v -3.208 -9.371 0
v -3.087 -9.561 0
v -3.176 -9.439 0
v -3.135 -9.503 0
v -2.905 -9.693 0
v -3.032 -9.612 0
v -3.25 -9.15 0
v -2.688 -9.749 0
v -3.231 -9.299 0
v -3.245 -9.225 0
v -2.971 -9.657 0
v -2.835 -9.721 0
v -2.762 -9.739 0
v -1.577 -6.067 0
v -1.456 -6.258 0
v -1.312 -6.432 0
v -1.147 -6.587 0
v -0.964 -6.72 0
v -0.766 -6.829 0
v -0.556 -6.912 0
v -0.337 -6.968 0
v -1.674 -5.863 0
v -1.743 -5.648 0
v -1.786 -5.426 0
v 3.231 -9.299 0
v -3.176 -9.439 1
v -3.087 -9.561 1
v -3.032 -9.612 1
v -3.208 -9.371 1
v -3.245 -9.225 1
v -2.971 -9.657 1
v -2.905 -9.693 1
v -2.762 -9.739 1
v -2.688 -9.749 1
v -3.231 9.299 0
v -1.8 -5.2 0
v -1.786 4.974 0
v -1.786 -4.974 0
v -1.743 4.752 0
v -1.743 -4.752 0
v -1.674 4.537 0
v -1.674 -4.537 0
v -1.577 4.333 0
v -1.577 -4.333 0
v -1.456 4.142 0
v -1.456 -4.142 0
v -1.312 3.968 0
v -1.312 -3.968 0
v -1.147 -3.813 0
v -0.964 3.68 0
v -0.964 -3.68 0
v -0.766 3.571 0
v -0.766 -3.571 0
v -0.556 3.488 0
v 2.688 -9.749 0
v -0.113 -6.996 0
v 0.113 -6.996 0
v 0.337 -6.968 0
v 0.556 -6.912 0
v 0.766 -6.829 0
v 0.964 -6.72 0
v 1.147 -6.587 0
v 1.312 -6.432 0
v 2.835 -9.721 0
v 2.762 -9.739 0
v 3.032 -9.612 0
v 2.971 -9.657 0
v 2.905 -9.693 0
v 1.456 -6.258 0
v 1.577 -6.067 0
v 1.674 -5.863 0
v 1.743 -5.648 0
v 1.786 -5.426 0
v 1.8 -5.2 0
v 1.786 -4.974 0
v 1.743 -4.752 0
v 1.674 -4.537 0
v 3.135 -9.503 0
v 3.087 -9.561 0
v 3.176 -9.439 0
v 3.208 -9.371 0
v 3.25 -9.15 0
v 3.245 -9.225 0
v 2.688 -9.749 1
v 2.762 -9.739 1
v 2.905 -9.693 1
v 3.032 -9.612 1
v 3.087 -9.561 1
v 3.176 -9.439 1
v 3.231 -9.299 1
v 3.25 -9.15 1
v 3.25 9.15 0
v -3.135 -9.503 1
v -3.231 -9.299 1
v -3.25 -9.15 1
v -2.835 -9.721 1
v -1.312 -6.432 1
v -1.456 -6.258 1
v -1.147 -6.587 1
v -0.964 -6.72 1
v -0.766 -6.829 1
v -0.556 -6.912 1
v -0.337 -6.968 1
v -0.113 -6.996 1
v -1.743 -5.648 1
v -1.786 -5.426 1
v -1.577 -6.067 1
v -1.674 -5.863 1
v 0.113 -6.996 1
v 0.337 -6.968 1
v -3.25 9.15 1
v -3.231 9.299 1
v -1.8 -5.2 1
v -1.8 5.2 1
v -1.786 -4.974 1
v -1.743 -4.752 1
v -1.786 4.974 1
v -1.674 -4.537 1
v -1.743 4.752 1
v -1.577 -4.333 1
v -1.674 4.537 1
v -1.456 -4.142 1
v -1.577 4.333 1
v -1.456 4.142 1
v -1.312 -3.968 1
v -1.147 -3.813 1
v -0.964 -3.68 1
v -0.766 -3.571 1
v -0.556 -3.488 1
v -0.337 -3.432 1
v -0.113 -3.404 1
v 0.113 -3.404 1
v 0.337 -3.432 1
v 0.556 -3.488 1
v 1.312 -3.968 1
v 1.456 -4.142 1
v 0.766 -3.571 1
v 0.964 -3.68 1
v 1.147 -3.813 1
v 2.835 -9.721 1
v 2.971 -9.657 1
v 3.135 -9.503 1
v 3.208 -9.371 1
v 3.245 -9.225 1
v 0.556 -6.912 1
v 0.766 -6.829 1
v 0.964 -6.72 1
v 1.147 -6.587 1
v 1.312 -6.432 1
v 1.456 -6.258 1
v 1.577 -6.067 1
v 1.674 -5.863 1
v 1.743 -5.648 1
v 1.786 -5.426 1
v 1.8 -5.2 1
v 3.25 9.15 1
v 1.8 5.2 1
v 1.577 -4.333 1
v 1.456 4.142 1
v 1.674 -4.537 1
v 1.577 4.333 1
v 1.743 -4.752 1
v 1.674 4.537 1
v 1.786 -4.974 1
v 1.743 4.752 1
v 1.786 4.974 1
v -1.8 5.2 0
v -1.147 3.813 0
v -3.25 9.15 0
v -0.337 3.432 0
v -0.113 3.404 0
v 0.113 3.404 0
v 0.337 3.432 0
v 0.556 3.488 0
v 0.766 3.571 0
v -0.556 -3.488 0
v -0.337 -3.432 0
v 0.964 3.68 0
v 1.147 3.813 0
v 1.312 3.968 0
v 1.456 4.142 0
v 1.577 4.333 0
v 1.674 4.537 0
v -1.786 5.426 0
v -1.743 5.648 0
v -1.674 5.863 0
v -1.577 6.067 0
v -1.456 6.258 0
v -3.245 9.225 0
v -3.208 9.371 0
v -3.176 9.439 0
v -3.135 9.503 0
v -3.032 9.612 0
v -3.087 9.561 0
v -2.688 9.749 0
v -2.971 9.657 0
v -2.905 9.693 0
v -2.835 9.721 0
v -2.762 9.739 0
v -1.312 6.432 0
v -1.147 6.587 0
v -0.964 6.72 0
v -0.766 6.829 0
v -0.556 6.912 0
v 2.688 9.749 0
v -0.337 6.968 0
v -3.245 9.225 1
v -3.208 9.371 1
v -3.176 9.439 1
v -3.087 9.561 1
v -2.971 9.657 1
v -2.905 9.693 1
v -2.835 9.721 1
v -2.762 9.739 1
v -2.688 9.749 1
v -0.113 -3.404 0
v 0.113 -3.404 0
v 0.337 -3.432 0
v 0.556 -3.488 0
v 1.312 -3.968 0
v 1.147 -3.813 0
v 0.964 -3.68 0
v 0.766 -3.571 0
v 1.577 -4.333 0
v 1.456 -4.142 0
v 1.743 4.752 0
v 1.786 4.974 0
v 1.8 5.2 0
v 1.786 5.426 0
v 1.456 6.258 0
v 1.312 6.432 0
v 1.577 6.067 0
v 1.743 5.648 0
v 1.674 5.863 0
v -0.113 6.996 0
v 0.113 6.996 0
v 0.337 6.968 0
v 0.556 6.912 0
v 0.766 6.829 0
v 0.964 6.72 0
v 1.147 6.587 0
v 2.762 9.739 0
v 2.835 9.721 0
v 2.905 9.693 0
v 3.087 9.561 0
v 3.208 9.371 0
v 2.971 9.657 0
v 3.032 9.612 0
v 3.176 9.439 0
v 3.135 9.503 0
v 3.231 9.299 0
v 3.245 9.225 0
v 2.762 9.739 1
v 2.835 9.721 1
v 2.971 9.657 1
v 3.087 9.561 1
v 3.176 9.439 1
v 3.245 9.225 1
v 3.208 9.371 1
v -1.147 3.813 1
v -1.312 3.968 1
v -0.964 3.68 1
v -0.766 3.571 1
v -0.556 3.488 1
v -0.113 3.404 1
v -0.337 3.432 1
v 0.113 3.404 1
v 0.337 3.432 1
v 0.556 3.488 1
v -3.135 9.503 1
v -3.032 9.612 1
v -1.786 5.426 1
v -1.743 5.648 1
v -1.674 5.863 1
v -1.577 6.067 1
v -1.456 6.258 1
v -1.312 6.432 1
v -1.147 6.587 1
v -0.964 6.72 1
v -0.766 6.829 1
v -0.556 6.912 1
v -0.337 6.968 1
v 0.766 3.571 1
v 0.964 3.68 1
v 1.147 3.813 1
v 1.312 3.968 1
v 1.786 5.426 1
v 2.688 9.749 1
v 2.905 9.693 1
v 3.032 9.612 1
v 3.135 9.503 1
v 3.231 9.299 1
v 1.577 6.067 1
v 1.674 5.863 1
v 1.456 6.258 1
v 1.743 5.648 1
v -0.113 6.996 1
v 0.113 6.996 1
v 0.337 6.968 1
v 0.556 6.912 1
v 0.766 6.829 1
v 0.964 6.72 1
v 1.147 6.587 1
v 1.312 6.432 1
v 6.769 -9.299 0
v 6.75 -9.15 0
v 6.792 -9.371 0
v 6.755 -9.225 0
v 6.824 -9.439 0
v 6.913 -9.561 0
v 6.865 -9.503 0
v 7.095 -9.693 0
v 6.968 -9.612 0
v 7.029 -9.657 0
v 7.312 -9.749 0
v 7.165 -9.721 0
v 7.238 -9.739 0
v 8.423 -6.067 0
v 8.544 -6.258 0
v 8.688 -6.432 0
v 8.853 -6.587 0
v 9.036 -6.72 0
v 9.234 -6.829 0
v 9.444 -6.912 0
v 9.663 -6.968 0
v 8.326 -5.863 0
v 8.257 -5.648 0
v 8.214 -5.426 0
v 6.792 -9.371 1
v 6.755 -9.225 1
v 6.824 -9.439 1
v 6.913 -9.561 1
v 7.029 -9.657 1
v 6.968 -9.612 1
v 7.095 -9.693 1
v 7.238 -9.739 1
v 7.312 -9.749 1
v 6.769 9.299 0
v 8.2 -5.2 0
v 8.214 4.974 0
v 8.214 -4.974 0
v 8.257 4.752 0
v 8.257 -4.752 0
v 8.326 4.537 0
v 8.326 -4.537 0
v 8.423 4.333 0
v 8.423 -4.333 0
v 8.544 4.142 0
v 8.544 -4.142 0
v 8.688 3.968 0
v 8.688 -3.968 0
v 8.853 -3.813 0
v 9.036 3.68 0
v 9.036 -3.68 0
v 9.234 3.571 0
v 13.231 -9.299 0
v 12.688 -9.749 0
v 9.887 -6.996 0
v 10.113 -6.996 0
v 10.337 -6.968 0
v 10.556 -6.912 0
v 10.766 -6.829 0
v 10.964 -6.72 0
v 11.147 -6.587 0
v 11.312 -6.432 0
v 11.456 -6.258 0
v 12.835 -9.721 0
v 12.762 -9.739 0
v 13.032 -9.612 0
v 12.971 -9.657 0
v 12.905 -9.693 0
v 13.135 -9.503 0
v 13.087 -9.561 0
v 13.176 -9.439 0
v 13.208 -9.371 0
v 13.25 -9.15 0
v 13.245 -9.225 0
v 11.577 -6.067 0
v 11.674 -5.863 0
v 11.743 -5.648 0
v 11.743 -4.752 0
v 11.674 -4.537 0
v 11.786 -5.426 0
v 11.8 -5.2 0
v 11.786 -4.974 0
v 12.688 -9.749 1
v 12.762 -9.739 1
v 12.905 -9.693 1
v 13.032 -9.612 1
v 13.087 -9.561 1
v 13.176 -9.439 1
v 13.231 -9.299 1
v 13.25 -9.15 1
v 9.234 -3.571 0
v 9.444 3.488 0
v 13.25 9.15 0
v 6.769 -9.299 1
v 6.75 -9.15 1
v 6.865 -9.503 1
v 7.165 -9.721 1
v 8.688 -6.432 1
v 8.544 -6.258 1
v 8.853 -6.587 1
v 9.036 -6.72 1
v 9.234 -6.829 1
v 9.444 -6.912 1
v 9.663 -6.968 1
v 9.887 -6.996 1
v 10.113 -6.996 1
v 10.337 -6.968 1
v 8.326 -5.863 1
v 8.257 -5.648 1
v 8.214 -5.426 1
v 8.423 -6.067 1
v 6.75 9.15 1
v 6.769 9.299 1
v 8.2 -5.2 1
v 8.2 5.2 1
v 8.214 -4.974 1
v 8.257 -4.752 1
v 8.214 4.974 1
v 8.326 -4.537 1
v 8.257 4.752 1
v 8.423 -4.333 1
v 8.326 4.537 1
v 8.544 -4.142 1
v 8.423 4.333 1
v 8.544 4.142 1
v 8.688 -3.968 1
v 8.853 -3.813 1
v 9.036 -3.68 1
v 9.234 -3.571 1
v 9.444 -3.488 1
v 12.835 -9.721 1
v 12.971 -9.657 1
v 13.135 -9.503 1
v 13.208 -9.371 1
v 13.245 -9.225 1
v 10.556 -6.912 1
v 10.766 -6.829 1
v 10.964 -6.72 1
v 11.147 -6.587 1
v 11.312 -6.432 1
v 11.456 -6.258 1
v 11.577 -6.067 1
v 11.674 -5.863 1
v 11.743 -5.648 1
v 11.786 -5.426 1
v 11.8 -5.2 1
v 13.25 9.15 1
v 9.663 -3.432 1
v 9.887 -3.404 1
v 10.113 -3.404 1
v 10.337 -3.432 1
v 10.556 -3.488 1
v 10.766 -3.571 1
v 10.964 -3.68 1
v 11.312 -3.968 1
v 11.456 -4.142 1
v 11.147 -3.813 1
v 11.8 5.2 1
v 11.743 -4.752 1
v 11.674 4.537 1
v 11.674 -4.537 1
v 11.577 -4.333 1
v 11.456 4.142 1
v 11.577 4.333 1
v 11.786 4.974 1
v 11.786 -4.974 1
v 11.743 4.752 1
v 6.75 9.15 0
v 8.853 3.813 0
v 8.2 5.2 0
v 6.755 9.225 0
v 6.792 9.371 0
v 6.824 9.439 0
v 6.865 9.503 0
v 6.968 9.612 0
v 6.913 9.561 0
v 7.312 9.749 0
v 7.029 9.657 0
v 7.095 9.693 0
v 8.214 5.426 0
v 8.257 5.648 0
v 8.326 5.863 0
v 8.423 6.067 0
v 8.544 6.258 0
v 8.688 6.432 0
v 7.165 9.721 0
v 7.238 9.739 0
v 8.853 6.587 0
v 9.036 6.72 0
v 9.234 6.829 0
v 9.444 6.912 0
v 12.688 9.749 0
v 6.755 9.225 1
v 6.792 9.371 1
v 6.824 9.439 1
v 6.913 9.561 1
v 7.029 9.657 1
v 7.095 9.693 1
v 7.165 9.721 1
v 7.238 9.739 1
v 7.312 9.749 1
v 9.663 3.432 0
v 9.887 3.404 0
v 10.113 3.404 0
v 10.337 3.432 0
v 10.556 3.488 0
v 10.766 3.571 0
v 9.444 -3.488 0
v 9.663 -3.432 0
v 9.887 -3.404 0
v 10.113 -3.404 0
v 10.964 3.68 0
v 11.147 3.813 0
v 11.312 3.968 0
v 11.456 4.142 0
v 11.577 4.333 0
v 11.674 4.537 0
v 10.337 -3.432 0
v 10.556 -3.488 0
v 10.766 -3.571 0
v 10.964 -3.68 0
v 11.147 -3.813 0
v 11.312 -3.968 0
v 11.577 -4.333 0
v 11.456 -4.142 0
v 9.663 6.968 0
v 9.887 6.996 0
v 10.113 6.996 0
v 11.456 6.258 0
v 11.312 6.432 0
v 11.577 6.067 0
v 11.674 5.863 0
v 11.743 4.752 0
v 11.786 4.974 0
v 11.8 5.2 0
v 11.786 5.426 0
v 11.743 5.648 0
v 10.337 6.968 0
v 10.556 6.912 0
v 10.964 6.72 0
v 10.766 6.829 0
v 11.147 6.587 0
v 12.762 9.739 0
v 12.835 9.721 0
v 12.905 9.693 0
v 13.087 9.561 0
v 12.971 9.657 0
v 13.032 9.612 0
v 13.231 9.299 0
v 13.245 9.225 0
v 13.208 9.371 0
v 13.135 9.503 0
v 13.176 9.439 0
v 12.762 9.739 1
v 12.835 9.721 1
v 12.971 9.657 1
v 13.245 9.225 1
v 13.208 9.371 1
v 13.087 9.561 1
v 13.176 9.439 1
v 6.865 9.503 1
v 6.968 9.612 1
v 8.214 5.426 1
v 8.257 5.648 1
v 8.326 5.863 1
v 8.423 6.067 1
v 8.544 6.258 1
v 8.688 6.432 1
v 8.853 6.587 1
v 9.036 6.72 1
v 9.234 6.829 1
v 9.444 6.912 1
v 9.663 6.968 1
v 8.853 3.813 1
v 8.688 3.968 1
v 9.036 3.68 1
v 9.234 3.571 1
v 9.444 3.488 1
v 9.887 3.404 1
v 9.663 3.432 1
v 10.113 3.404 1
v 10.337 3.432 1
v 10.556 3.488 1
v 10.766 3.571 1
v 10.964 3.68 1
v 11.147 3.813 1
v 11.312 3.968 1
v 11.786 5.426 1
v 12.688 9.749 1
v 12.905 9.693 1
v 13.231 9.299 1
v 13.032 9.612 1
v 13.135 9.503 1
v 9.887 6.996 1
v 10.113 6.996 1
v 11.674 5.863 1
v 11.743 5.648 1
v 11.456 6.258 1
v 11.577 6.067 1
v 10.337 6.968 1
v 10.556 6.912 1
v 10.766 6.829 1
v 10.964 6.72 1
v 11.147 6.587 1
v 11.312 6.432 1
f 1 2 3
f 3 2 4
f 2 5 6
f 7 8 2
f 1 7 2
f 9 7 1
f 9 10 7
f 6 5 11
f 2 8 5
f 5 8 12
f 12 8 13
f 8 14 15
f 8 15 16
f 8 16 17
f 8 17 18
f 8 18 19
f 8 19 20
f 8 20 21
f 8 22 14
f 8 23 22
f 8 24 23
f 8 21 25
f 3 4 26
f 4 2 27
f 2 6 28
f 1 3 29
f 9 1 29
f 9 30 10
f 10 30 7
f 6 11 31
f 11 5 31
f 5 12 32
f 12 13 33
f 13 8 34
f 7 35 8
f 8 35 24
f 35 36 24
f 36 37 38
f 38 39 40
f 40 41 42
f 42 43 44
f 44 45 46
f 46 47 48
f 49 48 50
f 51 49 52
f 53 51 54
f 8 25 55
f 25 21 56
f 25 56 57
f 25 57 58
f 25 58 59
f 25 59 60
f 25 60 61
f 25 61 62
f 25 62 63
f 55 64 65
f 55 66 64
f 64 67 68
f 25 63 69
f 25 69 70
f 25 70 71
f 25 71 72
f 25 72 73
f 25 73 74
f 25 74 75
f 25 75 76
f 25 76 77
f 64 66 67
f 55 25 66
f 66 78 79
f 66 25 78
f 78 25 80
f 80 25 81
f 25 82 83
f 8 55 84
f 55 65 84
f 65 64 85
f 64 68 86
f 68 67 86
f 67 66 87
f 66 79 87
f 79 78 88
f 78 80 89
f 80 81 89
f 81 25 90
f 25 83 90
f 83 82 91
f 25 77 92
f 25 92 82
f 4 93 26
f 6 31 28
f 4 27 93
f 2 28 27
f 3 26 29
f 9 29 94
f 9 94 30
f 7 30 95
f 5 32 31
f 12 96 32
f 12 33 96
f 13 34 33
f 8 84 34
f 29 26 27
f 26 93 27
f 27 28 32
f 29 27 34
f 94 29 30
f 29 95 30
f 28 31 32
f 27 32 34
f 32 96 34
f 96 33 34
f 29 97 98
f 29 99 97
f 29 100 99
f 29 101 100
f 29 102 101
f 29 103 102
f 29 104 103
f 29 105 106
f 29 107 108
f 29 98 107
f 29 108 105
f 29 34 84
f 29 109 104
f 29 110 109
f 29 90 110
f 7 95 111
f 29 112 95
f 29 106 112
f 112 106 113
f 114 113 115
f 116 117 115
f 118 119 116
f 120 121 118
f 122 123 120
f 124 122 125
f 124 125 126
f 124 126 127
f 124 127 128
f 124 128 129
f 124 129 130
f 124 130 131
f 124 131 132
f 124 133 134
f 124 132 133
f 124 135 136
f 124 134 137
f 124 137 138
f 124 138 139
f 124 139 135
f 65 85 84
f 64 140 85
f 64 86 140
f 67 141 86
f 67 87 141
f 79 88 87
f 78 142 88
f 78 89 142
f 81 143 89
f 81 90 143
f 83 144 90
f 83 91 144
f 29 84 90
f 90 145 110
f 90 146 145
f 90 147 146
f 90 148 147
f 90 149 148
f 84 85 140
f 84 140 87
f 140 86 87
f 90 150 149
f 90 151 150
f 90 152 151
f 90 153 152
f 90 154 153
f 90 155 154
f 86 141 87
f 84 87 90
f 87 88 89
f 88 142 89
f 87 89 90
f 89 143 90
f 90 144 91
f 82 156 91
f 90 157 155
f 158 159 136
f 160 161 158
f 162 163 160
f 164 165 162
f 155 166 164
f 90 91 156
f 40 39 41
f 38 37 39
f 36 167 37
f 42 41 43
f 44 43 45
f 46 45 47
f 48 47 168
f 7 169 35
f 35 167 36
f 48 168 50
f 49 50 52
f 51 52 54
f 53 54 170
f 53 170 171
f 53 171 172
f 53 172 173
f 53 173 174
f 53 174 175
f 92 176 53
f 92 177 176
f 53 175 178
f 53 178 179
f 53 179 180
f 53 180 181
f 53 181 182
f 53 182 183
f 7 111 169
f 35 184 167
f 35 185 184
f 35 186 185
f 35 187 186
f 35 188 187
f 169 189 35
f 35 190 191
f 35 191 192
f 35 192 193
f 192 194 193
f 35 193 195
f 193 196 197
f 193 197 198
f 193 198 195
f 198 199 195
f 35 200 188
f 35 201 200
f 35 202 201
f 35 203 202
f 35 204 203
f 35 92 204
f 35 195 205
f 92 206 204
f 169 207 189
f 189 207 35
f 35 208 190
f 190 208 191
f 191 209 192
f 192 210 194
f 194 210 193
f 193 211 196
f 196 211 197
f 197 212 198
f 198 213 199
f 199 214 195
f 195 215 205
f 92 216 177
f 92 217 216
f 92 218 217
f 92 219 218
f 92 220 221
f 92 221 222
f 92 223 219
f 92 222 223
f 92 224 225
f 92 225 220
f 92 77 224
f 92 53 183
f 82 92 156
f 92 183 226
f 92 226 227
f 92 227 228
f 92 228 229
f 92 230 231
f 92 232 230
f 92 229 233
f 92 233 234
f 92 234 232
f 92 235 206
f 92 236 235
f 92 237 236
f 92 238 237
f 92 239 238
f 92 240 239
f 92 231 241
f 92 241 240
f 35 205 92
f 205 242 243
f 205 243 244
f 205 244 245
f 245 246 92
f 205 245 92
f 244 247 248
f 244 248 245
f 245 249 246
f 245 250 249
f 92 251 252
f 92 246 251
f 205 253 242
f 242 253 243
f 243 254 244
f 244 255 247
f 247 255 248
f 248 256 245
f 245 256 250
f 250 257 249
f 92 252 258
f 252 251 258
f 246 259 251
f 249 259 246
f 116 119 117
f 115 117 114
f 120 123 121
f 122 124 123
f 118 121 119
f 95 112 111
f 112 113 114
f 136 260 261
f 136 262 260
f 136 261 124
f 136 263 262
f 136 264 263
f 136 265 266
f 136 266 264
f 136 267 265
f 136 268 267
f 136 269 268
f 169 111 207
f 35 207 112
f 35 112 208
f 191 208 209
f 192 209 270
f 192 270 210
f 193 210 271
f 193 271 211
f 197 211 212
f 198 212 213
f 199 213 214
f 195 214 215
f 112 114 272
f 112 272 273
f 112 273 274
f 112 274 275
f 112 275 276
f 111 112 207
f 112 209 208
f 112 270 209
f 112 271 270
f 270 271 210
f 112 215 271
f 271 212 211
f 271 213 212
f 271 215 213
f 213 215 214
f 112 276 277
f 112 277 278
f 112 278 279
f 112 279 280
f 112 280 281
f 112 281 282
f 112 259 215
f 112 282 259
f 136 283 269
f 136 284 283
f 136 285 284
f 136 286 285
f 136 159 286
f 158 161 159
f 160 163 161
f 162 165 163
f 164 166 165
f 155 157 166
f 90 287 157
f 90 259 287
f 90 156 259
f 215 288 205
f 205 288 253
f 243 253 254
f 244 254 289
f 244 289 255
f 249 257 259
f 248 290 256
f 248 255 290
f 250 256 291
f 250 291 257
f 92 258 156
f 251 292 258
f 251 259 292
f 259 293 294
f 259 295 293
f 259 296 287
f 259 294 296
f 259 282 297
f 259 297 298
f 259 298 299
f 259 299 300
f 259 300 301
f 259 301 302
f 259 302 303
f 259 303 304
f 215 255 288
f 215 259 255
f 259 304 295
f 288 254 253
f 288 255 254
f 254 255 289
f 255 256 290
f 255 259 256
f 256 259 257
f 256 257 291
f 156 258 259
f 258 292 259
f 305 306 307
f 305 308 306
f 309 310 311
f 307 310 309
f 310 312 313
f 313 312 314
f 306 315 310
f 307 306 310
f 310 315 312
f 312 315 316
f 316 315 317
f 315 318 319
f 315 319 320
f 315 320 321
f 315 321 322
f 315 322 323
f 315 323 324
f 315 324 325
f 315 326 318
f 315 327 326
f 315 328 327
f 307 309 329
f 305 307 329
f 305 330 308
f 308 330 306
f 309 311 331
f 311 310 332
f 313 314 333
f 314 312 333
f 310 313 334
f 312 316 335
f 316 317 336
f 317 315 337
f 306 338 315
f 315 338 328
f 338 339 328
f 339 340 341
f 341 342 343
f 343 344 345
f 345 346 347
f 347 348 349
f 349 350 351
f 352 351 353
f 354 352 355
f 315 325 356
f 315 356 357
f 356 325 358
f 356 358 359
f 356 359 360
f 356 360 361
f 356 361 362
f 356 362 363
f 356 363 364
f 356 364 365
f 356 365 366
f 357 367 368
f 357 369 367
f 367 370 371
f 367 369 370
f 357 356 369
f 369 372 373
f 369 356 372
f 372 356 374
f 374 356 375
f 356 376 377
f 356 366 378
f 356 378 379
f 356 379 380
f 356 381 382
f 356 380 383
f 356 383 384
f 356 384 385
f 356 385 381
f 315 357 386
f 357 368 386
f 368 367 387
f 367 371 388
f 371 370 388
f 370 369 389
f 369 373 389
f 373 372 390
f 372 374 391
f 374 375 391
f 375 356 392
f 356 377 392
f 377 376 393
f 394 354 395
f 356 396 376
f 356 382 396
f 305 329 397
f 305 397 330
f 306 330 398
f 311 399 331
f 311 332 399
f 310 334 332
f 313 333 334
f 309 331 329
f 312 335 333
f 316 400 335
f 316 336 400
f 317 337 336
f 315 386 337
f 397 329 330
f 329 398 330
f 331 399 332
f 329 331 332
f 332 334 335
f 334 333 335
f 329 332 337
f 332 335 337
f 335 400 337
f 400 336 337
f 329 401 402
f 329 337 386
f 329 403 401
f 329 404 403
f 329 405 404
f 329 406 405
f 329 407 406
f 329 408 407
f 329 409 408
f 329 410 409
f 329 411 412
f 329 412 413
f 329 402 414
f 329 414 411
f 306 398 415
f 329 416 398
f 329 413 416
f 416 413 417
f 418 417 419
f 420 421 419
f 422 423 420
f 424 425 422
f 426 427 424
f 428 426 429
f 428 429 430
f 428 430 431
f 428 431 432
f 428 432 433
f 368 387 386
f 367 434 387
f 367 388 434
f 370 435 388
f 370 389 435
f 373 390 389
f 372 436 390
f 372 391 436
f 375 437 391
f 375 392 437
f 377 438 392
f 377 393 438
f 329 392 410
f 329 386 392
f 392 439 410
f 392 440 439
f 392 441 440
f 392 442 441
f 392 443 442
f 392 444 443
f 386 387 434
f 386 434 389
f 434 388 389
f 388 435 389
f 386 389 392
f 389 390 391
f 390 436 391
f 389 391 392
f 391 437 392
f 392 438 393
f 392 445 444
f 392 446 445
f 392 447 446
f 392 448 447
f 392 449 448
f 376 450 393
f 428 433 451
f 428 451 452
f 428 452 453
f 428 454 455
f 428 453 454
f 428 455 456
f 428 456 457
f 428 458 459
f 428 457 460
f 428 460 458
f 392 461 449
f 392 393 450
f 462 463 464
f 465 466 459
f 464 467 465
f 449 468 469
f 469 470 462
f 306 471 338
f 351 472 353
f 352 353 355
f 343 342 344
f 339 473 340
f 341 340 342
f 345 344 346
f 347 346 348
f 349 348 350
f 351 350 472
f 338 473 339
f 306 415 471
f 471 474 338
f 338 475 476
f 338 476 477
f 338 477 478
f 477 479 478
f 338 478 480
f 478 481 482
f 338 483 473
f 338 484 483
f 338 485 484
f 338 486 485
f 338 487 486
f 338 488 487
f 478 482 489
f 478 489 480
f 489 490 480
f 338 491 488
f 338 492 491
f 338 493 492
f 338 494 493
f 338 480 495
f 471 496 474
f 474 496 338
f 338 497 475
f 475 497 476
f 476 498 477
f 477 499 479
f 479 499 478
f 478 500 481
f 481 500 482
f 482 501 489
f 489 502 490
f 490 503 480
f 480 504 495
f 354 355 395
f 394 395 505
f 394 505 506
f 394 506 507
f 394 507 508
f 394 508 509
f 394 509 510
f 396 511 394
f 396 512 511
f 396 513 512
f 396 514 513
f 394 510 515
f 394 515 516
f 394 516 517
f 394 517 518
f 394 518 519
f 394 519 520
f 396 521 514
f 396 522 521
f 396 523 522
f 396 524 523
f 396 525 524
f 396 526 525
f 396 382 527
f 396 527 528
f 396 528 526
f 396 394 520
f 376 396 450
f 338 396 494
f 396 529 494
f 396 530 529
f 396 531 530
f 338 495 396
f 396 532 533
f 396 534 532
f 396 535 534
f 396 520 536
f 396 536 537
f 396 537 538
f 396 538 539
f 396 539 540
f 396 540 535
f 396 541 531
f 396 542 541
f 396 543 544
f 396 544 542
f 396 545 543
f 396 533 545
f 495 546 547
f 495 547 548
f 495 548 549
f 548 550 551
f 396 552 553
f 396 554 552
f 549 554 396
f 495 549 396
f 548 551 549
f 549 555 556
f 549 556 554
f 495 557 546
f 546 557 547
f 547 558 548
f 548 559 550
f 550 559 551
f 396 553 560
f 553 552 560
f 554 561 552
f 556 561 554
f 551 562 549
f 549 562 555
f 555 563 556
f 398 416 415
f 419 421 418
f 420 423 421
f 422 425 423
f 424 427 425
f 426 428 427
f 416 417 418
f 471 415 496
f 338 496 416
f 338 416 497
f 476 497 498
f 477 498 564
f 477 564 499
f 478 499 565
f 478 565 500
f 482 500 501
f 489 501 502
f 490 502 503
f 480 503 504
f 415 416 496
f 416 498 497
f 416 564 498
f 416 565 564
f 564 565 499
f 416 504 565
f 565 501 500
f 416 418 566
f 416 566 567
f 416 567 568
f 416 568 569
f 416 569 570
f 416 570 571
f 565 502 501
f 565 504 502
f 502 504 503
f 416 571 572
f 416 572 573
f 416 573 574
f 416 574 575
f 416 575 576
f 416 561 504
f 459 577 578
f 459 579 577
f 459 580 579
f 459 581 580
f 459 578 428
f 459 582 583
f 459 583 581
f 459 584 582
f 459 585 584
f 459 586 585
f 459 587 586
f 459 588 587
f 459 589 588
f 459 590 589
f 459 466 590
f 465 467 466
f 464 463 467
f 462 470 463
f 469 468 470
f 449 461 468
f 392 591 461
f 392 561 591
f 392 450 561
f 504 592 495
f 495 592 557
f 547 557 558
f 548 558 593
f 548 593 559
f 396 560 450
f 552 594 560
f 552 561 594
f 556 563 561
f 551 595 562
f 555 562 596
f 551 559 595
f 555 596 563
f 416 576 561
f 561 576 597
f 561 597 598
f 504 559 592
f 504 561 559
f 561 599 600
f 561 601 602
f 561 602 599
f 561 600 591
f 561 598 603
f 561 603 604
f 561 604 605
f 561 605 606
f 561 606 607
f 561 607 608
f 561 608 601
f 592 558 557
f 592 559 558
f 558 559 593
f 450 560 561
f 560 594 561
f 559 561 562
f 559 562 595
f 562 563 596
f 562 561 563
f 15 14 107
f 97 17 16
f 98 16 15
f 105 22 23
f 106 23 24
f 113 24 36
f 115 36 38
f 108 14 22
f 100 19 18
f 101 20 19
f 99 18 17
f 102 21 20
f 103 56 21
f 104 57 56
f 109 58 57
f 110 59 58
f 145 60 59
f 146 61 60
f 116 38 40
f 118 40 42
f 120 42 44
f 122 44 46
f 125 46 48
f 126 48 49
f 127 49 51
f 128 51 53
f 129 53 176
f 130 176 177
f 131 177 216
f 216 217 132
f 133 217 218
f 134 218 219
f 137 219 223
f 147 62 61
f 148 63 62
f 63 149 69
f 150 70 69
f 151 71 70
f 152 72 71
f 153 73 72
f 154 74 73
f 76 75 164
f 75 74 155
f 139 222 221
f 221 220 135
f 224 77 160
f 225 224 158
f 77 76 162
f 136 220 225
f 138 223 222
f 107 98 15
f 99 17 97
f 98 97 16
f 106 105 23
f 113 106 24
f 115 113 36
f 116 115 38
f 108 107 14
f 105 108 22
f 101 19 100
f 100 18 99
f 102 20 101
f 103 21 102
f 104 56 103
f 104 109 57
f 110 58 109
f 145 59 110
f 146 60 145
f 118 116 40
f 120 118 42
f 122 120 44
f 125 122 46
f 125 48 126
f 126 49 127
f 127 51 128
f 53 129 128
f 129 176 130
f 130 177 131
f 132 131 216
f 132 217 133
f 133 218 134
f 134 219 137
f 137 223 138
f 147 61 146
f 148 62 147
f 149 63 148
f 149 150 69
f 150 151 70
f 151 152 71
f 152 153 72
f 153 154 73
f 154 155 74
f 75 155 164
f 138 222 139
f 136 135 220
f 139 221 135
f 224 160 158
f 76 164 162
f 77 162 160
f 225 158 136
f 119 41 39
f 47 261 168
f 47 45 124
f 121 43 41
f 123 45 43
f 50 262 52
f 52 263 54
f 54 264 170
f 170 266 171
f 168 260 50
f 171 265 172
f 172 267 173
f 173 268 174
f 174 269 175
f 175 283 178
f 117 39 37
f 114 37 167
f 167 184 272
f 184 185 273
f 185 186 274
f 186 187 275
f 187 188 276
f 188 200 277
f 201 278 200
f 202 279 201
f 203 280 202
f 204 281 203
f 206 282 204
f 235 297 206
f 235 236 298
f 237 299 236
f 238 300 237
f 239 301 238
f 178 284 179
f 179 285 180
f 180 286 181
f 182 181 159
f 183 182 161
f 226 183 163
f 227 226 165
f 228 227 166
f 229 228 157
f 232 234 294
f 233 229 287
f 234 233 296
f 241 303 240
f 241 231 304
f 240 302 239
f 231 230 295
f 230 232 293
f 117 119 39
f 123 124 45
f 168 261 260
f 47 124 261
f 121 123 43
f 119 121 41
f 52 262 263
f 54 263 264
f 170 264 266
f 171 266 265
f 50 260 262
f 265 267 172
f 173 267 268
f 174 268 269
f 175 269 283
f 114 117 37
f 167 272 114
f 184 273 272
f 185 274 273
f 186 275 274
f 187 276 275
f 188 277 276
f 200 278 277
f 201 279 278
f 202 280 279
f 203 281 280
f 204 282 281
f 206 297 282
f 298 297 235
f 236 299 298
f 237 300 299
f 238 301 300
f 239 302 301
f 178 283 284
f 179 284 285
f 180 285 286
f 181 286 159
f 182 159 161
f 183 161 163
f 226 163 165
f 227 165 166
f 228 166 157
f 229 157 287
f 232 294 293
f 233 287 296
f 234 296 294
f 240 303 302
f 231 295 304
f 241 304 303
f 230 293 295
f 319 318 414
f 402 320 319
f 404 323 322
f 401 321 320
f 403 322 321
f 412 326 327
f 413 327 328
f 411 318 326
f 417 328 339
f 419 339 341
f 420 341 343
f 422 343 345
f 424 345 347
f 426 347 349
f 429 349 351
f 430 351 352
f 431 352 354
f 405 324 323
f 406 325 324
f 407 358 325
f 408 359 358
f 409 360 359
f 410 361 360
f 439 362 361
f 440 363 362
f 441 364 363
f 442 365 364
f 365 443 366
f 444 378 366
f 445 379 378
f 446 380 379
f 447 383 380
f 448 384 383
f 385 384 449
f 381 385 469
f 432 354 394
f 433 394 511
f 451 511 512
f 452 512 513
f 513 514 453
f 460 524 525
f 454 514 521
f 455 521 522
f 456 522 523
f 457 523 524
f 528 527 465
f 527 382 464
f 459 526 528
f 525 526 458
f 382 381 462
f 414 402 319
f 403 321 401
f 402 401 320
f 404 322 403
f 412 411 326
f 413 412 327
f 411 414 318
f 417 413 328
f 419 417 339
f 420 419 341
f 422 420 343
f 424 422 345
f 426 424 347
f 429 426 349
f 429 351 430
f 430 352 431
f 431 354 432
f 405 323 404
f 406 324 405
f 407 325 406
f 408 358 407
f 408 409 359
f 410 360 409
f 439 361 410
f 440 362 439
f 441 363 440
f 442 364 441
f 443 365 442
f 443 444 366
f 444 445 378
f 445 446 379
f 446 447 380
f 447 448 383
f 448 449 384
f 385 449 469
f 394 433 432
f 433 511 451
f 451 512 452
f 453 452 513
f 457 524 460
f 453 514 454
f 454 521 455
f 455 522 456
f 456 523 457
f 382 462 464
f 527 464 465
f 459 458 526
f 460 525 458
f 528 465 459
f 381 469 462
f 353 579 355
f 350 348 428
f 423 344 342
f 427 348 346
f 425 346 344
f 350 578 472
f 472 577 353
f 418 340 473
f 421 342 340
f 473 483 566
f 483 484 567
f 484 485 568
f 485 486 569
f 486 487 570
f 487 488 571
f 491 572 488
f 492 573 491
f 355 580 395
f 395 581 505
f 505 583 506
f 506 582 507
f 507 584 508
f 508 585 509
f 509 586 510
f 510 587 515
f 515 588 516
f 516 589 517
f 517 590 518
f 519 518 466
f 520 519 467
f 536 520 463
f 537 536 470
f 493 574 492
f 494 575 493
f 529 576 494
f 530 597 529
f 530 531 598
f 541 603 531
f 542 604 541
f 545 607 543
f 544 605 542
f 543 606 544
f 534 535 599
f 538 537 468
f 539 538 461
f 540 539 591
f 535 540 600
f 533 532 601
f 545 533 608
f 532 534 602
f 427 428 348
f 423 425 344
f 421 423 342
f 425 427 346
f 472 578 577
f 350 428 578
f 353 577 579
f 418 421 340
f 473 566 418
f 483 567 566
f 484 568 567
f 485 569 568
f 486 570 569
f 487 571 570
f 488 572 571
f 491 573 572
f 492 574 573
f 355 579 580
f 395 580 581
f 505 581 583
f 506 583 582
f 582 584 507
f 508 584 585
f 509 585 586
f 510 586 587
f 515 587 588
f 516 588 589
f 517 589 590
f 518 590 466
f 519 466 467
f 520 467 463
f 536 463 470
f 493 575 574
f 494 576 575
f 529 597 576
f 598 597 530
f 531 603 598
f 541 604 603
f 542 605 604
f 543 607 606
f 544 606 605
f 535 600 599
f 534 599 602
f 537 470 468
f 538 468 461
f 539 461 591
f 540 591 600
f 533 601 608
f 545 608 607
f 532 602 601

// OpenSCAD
$fn = 50;

difference() {
	union() {
		translate(v = [34.5, 0, 1]) {
			rotate(a = [0, 0, 0]) {
				difference() {
					union() {
						translate(v = [-34.5, 0, -1]) {
							hull() {
								translate(v = [-2.65, 9.15, 0]) {
									cylinder(h = 1, r = 0.6);
								}
								translate(v = [2.65, 9.15, 0]) {
									cylinder(h = 1, r = 0.6);
								}
								translate(v = [-2.65, -9.15, 0]) {
									cylinder(h = 1, r = 0.6);
								}
								translate(v = [2.65, -9.15, 0]) {
									cylinder(h = 1, r = 0.6);
								}
							}
						}
					}
					union() {
						translate(v = [-34.5, -5.2, -2]) {
							cylinder(h = 3, r = 1.8);
						}
						translate(v = [-34.5, 5.2, -2]) {
							cylinder(h = 3, r = 1.8);
						}
					}
				}
			}
		}
		translate(v = [-4.5, 0, 1]) {
			rotate(a = [0, 0, 0]) {
				difference() {
					union() {
						translate(v = [14.5, 0, -1]) {
							hull() {
								translate(v = [-2.65, 9.15, 0]) {
									cylinder(h = 1, r = 0.6);
								}
								translate(v = [2.65, 9.15, 0]) {
									cylinder(h = 1, r = 0.6);
								}
								translate(v = [-2.65, -9.15, 0]) {
									cylinder(h = 1, r = 0.6);
								}
								translate(v = [2.65, -9.15, 0]) {
									cylinder(h = 1, r = 0.6);
								}
							}
						}
					}
					union() {
						translate(v = [14.5, -5.2, -2]) {
							cylinder(h = 3, r = 1.8);
						}
						translate(v = [14.5, 5.2, -2]) {
							cylinder(h = 3, r = 1.8);
						}
					}
				}
			}
		}
	}
	union();
}
